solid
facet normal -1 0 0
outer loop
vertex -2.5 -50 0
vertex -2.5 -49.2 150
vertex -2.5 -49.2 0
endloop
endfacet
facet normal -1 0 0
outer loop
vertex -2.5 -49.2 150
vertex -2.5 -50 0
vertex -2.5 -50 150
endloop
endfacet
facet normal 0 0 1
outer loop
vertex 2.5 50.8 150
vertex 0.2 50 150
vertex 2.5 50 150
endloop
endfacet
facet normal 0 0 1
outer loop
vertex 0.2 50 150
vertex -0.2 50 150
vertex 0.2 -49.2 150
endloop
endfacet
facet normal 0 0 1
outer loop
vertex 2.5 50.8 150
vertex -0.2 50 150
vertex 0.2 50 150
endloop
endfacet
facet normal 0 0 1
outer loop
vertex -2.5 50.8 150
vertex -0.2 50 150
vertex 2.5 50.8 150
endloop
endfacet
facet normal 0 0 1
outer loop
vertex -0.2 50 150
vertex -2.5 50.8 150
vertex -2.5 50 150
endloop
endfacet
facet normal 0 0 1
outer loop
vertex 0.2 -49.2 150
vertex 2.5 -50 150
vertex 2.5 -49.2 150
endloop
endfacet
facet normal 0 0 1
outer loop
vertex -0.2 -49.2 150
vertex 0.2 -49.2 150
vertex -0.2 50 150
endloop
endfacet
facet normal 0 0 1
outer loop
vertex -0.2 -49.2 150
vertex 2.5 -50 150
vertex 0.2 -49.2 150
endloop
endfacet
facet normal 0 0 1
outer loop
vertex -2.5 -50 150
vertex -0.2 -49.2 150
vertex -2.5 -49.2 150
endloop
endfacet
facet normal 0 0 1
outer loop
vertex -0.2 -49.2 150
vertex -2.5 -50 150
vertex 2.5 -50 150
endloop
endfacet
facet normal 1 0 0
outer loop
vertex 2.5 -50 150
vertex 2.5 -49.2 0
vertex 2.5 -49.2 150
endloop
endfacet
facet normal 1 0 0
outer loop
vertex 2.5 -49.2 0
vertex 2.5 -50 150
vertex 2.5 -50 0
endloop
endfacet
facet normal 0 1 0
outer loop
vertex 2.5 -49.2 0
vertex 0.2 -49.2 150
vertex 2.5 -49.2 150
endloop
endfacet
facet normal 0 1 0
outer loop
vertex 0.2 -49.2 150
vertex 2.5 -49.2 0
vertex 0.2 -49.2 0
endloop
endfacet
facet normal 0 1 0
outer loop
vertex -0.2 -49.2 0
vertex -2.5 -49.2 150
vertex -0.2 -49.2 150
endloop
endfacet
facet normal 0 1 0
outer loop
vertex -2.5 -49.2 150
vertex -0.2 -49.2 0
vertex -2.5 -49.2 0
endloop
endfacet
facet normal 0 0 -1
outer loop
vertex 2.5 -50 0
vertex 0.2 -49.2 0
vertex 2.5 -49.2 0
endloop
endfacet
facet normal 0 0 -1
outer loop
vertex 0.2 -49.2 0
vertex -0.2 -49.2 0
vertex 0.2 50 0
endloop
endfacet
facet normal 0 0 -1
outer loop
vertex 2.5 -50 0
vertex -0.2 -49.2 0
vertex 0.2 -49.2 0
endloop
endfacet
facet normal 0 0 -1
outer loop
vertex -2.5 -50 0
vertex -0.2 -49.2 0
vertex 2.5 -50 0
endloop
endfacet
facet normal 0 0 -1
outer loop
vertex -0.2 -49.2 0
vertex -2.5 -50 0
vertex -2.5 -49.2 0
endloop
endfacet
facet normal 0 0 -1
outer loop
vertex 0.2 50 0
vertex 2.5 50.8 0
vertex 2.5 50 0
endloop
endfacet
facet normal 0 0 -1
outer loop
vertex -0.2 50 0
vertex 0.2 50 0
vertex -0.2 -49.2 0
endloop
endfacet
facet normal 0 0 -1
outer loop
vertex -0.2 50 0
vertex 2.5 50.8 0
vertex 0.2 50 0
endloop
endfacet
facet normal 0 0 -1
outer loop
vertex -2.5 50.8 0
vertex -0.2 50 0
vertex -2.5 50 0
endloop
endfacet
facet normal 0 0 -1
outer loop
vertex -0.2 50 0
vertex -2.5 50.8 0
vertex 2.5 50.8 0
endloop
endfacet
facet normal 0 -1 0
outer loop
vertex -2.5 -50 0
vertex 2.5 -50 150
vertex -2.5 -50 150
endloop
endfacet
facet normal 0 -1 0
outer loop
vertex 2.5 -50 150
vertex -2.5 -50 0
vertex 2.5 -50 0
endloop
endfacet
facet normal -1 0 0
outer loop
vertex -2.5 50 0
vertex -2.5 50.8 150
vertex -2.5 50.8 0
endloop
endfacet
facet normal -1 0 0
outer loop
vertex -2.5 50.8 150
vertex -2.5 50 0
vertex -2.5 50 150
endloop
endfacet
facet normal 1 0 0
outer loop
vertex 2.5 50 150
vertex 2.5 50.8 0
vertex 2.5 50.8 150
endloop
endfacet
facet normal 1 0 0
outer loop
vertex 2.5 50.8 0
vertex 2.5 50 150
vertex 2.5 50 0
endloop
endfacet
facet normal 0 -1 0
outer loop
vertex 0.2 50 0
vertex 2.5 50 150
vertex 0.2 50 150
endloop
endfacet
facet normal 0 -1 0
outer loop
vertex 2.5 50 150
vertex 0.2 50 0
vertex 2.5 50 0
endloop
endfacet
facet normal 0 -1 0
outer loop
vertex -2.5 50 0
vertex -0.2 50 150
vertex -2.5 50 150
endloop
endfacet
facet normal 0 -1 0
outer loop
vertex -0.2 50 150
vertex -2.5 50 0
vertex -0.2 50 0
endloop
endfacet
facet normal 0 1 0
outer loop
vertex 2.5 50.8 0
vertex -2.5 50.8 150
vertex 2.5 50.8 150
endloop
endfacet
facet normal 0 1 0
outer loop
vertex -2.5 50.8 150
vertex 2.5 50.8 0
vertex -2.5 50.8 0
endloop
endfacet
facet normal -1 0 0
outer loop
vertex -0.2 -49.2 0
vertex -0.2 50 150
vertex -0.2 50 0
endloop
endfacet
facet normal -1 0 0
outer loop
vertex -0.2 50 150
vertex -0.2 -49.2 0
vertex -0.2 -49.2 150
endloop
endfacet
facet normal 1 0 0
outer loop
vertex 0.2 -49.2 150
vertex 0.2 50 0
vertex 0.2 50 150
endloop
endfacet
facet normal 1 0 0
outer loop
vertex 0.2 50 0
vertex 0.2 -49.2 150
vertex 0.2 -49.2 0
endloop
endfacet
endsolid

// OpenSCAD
// -*- mode: SCAD ; c-file-style: "ellemtel" ; coding: utf-8 -*-
//
//
//
// (c) 2017 Roland Sieker <ospalh@gmail.com>
// Licence: CC-BY-SA 4.0

// ... to preview
part = "wall"; // [wall: The cooling wall, modifier: The modifier cuboid. See description]
top_height=150; // [0,0.1:200]
modifier_bottom_height = 10;  // [0,0.1:200]


/* [Hidden] */

ms = 0.01;

print_part();

module print_part()
{
   if ("wall" == part)
   {
      wall();
   }
   if ("modifier" == part)
   {
      modifier();
   }
}


module wall()
{
   translate([-2.5, -50, 0])
   {
      cube([5, 0.8, top_height]);
   }
   translate([-2.5, 50, 0])
   {
   cube([5, 0.8, top_height]);
   }
   translate([0,0,top_height/2])
   {
      cube([0.4, 100, top_height], center=true);
   }
}

module modifier()
{
   translate([0,0,(top_height-modifier_bottom_height)/2+modifier_bottom_height+ms])
   {
      cube([1.2, 102, top_height-modifier_bottom_height+2*ms], center=true);
   }

}
